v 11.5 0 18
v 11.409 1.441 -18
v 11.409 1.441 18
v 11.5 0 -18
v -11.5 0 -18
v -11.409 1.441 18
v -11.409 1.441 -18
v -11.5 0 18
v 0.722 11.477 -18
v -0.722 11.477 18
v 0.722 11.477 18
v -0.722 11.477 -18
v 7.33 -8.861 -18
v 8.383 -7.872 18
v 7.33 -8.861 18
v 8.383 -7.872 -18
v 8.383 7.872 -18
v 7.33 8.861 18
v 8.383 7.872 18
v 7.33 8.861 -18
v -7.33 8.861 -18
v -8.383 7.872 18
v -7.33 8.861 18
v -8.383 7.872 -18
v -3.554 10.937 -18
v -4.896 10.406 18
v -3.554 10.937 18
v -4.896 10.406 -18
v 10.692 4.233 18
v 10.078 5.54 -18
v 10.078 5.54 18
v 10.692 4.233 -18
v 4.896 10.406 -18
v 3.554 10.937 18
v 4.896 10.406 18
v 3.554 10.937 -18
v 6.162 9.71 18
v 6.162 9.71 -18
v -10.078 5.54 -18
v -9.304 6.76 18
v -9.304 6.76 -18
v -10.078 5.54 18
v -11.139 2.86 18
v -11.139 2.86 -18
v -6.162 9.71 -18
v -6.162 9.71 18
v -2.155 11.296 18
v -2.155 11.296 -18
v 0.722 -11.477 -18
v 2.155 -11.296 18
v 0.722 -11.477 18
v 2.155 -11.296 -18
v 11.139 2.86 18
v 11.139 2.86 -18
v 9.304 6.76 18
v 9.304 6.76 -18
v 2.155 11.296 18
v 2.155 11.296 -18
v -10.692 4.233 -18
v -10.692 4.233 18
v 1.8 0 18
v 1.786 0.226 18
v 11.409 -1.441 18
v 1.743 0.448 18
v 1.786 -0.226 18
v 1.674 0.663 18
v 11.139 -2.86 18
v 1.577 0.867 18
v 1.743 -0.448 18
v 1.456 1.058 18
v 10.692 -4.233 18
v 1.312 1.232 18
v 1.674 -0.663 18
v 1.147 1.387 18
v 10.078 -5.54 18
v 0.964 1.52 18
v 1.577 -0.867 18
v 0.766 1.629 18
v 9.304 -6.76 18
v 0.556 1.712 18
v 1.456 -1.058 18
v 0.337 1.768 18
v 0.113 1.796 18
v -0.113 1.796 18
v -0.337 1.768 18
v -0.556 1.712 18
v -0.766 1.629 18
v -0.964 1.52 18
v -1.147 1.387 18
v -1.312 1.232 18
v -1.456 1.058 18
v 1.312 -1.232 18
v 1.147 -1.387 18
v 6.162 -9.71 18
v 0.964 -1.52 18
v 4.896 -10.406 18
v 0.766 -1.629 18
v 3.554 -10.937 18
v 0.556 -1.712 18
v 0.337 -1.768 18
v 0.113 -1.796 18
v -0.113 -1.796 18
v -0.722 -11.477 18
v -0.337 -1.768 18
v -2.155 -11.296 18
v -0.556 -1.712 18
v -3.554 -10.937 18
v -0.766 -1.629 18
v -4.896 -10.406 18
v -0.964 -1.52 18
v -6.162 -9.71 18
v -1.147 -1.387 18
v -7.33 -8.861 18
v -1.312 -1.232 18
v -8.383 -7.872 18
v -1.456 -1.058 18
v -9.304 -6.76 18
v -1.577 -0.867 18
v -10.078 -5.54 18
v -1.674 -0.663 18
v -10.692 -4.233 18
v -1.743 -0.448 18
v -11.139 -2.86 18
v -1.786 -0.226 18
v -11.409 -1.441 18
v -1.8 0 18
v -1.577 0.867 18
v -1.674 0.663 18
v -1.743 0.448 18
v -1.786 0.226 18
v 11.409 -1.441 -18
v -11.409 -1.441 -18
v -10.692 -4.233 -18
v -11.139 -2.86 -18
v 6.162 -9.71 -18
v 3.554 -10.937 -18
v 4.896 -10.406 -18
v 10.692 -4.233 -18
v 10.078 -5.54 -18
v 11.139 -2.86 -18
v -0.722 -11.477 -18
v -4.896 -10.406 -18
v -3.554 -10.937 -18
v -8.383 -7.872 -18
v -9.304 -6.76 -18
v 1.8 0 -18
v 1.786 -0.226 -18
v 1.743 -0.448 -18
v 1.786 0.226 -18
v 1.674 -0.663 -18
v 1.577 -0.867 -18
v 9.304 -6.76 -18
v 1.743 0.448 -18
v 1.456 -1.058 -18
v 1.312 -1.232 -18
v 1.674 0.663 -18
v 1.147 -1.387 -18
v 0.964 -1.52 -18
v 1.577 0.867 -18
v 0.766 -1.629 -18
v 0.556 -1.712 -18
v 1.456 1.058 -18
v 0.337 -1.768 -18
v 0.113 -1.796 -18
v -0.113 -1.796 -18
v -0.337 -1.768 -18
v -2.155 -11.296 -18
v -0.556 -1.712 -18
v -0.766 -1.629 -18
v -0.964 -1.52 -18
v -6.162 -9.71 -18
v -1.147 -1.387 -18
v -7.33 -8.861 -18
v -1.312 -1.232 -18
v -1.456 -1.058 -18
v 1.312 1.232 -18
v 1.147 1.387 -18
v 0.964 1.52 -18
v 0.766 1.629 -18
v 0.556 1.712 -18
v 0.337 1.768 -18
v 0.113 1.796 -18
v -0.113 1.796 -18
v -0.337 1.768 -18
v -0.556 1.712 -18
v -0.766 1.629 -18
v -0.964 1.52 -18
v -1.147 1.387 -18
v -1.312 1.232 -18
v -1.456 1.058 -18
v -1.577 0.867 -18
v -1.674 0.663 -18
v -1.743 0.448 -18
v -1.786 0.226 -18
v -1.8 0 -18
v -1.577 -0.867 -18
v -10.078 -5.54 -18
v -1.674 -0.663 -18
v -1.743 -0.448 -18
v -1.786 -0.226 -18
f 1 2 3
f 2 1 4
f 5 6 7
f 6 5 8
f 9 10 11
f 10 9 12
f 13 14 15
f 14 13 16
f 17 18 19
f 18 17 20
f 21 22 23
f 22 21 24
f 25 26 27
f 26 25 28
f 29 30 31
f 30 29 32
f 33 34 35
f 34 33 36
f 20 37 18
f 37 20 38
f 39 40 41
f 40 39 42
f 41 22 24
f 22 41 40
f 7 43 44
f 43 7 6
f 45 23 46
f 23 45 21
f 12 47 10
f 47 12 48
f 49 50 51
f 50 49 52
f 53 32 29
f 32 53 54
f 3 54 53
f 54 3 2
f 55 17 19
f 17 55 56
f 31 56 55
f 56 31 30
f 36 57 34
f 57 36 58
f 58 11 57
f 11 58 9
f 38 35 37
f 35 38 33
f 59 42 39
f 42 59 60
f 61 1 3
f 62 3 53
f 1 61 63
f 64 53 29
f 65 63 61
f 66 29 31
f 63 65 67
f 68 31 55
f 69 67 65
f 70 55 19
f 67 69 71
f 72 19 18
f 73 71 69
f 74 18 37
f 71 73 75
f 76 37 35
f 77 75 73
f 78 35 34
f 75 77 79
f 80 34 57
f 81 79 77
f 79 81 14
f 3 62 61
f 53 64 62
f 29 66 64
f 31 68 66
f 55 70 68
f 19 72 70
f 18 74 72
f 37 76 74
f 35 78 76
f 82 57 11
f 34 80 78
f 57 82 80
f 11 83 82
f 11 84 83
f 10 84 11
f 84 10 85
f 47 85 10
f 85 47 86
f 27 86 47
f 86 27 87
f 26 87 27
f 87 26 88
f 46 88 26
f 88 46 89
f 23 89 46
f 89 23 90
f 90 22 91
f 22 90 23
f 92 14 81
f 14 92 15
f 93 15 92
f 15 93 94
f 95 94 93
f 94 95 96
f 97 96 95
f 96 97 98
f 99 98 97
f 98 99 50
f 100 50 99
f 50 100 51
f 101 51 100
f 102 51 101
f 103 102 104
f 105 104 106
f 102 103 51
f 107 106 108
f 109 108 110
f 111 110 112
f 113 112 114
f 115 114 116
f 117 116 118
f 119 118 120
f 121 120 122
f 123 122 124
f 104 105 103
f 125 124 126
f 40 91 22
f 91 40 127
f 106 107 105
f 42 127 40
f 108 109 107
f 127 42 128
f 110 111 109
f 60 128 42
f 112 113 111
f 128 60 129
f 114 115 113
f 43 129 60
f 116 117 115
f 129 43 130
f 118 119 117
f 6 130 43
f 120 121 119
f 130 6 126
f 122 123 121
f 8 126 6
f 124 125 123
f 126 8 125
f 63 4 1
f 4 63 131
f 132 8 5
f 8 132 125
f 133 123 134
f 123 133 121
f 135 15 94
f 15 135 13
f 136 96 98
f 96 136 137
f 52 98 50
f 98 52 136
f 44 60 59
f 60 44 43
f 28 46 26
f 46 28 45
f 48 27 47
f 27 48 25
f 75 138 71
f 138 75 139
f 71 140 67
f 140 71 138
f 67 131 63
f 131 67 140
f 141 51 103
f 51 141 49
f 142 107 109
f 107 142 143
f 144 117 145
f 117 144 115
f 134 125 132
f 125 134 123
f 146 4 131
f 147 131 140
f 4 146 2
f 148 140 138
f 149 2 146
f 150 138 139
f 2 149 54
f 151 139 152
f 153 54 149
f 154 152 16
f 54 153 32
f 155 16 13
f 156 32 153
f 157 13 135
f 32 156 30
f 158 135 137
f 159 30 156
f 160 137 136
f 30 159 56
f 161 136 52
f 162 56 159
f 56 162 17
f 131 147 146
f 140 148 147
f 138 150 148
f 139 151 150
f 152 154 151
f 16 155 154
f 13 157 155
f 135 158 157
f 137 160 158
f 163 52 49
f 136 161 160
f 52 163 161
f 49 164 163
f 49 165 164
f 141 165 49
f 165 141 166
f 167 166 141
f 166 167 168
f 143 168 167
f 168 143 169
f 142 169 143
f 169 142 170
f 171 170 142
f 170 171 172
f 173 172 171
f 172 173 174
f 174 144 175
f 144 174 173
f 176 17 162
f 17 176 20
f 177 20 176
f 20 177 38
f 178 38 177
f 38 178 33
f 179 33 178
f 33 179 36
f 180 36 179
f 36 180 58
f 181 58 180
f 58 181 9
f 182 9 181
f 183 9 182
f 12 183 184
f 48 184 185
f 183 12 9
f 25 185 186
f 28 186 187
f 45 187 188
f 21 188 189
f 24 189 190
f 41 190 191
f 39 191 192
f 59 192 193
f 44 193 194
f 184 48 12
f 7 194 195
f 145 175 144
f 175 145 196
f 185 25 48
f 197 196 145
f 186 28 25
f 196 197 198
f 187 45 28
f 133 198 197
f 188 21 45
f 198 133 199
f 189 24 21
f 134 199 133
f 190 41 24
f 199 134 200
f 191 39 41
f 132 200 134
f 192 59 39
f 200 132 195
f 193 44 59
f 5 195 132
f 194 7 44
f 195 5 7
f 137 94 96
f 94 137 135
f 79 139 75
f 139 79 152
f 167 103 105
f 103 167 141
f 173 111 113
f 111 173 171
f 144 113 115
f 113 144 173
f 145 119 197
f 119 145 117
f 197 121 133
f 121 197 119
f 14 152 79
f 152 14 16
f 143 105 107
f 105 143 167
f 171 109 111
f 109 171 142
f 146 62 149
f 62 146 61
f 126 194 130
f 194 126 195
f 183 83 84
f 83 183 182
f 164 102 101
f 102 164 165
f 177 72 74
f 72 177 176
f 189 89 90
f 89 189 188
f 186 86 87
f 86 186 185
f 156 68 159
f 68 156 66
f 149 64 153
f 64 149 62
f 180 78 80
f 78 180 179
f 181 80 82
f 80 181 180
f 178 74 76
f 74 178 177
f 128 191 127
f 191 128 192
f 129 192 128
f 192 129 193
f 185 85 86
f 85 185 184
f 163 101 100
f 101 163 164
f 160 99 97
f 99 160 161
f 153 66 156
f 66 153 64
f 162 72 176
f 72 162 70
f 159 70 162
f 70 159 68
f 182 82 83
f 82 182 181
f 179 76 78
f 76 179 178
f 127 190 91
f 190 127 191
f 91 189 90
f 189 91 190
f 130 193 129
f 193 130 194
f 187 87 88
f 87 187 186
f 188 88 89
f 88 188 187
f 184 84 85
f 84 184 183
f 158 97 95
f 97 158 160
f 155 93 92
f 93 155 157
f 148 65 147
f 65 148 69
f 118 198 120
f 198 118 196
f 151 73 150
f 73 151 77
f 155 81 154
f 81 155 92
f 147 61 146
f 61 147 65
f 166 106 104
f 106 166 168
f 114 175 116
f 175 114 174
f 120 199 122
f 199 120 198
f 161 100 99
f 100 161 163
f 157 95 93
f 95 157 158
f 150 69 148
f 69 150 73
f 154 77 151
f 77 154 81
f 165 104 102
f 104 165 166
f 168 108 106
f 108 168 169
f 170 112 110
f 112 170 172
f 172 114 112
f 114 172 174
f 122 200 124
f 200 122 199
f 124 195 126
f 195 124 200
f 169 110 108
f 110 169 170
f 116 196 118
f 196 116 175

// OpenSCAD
$fn = 50;


difference() {
	union() {
		translate(v = [0, 0, -18.0000000000]) {
			cylinder(h = 36, r = 11.5000000000);
		}
	}
	union() {
		translate(v = [0, 0, -100.0000000000]) {
			cylinder(h = 200, r = 1.8000000000);
		}
	}
}
